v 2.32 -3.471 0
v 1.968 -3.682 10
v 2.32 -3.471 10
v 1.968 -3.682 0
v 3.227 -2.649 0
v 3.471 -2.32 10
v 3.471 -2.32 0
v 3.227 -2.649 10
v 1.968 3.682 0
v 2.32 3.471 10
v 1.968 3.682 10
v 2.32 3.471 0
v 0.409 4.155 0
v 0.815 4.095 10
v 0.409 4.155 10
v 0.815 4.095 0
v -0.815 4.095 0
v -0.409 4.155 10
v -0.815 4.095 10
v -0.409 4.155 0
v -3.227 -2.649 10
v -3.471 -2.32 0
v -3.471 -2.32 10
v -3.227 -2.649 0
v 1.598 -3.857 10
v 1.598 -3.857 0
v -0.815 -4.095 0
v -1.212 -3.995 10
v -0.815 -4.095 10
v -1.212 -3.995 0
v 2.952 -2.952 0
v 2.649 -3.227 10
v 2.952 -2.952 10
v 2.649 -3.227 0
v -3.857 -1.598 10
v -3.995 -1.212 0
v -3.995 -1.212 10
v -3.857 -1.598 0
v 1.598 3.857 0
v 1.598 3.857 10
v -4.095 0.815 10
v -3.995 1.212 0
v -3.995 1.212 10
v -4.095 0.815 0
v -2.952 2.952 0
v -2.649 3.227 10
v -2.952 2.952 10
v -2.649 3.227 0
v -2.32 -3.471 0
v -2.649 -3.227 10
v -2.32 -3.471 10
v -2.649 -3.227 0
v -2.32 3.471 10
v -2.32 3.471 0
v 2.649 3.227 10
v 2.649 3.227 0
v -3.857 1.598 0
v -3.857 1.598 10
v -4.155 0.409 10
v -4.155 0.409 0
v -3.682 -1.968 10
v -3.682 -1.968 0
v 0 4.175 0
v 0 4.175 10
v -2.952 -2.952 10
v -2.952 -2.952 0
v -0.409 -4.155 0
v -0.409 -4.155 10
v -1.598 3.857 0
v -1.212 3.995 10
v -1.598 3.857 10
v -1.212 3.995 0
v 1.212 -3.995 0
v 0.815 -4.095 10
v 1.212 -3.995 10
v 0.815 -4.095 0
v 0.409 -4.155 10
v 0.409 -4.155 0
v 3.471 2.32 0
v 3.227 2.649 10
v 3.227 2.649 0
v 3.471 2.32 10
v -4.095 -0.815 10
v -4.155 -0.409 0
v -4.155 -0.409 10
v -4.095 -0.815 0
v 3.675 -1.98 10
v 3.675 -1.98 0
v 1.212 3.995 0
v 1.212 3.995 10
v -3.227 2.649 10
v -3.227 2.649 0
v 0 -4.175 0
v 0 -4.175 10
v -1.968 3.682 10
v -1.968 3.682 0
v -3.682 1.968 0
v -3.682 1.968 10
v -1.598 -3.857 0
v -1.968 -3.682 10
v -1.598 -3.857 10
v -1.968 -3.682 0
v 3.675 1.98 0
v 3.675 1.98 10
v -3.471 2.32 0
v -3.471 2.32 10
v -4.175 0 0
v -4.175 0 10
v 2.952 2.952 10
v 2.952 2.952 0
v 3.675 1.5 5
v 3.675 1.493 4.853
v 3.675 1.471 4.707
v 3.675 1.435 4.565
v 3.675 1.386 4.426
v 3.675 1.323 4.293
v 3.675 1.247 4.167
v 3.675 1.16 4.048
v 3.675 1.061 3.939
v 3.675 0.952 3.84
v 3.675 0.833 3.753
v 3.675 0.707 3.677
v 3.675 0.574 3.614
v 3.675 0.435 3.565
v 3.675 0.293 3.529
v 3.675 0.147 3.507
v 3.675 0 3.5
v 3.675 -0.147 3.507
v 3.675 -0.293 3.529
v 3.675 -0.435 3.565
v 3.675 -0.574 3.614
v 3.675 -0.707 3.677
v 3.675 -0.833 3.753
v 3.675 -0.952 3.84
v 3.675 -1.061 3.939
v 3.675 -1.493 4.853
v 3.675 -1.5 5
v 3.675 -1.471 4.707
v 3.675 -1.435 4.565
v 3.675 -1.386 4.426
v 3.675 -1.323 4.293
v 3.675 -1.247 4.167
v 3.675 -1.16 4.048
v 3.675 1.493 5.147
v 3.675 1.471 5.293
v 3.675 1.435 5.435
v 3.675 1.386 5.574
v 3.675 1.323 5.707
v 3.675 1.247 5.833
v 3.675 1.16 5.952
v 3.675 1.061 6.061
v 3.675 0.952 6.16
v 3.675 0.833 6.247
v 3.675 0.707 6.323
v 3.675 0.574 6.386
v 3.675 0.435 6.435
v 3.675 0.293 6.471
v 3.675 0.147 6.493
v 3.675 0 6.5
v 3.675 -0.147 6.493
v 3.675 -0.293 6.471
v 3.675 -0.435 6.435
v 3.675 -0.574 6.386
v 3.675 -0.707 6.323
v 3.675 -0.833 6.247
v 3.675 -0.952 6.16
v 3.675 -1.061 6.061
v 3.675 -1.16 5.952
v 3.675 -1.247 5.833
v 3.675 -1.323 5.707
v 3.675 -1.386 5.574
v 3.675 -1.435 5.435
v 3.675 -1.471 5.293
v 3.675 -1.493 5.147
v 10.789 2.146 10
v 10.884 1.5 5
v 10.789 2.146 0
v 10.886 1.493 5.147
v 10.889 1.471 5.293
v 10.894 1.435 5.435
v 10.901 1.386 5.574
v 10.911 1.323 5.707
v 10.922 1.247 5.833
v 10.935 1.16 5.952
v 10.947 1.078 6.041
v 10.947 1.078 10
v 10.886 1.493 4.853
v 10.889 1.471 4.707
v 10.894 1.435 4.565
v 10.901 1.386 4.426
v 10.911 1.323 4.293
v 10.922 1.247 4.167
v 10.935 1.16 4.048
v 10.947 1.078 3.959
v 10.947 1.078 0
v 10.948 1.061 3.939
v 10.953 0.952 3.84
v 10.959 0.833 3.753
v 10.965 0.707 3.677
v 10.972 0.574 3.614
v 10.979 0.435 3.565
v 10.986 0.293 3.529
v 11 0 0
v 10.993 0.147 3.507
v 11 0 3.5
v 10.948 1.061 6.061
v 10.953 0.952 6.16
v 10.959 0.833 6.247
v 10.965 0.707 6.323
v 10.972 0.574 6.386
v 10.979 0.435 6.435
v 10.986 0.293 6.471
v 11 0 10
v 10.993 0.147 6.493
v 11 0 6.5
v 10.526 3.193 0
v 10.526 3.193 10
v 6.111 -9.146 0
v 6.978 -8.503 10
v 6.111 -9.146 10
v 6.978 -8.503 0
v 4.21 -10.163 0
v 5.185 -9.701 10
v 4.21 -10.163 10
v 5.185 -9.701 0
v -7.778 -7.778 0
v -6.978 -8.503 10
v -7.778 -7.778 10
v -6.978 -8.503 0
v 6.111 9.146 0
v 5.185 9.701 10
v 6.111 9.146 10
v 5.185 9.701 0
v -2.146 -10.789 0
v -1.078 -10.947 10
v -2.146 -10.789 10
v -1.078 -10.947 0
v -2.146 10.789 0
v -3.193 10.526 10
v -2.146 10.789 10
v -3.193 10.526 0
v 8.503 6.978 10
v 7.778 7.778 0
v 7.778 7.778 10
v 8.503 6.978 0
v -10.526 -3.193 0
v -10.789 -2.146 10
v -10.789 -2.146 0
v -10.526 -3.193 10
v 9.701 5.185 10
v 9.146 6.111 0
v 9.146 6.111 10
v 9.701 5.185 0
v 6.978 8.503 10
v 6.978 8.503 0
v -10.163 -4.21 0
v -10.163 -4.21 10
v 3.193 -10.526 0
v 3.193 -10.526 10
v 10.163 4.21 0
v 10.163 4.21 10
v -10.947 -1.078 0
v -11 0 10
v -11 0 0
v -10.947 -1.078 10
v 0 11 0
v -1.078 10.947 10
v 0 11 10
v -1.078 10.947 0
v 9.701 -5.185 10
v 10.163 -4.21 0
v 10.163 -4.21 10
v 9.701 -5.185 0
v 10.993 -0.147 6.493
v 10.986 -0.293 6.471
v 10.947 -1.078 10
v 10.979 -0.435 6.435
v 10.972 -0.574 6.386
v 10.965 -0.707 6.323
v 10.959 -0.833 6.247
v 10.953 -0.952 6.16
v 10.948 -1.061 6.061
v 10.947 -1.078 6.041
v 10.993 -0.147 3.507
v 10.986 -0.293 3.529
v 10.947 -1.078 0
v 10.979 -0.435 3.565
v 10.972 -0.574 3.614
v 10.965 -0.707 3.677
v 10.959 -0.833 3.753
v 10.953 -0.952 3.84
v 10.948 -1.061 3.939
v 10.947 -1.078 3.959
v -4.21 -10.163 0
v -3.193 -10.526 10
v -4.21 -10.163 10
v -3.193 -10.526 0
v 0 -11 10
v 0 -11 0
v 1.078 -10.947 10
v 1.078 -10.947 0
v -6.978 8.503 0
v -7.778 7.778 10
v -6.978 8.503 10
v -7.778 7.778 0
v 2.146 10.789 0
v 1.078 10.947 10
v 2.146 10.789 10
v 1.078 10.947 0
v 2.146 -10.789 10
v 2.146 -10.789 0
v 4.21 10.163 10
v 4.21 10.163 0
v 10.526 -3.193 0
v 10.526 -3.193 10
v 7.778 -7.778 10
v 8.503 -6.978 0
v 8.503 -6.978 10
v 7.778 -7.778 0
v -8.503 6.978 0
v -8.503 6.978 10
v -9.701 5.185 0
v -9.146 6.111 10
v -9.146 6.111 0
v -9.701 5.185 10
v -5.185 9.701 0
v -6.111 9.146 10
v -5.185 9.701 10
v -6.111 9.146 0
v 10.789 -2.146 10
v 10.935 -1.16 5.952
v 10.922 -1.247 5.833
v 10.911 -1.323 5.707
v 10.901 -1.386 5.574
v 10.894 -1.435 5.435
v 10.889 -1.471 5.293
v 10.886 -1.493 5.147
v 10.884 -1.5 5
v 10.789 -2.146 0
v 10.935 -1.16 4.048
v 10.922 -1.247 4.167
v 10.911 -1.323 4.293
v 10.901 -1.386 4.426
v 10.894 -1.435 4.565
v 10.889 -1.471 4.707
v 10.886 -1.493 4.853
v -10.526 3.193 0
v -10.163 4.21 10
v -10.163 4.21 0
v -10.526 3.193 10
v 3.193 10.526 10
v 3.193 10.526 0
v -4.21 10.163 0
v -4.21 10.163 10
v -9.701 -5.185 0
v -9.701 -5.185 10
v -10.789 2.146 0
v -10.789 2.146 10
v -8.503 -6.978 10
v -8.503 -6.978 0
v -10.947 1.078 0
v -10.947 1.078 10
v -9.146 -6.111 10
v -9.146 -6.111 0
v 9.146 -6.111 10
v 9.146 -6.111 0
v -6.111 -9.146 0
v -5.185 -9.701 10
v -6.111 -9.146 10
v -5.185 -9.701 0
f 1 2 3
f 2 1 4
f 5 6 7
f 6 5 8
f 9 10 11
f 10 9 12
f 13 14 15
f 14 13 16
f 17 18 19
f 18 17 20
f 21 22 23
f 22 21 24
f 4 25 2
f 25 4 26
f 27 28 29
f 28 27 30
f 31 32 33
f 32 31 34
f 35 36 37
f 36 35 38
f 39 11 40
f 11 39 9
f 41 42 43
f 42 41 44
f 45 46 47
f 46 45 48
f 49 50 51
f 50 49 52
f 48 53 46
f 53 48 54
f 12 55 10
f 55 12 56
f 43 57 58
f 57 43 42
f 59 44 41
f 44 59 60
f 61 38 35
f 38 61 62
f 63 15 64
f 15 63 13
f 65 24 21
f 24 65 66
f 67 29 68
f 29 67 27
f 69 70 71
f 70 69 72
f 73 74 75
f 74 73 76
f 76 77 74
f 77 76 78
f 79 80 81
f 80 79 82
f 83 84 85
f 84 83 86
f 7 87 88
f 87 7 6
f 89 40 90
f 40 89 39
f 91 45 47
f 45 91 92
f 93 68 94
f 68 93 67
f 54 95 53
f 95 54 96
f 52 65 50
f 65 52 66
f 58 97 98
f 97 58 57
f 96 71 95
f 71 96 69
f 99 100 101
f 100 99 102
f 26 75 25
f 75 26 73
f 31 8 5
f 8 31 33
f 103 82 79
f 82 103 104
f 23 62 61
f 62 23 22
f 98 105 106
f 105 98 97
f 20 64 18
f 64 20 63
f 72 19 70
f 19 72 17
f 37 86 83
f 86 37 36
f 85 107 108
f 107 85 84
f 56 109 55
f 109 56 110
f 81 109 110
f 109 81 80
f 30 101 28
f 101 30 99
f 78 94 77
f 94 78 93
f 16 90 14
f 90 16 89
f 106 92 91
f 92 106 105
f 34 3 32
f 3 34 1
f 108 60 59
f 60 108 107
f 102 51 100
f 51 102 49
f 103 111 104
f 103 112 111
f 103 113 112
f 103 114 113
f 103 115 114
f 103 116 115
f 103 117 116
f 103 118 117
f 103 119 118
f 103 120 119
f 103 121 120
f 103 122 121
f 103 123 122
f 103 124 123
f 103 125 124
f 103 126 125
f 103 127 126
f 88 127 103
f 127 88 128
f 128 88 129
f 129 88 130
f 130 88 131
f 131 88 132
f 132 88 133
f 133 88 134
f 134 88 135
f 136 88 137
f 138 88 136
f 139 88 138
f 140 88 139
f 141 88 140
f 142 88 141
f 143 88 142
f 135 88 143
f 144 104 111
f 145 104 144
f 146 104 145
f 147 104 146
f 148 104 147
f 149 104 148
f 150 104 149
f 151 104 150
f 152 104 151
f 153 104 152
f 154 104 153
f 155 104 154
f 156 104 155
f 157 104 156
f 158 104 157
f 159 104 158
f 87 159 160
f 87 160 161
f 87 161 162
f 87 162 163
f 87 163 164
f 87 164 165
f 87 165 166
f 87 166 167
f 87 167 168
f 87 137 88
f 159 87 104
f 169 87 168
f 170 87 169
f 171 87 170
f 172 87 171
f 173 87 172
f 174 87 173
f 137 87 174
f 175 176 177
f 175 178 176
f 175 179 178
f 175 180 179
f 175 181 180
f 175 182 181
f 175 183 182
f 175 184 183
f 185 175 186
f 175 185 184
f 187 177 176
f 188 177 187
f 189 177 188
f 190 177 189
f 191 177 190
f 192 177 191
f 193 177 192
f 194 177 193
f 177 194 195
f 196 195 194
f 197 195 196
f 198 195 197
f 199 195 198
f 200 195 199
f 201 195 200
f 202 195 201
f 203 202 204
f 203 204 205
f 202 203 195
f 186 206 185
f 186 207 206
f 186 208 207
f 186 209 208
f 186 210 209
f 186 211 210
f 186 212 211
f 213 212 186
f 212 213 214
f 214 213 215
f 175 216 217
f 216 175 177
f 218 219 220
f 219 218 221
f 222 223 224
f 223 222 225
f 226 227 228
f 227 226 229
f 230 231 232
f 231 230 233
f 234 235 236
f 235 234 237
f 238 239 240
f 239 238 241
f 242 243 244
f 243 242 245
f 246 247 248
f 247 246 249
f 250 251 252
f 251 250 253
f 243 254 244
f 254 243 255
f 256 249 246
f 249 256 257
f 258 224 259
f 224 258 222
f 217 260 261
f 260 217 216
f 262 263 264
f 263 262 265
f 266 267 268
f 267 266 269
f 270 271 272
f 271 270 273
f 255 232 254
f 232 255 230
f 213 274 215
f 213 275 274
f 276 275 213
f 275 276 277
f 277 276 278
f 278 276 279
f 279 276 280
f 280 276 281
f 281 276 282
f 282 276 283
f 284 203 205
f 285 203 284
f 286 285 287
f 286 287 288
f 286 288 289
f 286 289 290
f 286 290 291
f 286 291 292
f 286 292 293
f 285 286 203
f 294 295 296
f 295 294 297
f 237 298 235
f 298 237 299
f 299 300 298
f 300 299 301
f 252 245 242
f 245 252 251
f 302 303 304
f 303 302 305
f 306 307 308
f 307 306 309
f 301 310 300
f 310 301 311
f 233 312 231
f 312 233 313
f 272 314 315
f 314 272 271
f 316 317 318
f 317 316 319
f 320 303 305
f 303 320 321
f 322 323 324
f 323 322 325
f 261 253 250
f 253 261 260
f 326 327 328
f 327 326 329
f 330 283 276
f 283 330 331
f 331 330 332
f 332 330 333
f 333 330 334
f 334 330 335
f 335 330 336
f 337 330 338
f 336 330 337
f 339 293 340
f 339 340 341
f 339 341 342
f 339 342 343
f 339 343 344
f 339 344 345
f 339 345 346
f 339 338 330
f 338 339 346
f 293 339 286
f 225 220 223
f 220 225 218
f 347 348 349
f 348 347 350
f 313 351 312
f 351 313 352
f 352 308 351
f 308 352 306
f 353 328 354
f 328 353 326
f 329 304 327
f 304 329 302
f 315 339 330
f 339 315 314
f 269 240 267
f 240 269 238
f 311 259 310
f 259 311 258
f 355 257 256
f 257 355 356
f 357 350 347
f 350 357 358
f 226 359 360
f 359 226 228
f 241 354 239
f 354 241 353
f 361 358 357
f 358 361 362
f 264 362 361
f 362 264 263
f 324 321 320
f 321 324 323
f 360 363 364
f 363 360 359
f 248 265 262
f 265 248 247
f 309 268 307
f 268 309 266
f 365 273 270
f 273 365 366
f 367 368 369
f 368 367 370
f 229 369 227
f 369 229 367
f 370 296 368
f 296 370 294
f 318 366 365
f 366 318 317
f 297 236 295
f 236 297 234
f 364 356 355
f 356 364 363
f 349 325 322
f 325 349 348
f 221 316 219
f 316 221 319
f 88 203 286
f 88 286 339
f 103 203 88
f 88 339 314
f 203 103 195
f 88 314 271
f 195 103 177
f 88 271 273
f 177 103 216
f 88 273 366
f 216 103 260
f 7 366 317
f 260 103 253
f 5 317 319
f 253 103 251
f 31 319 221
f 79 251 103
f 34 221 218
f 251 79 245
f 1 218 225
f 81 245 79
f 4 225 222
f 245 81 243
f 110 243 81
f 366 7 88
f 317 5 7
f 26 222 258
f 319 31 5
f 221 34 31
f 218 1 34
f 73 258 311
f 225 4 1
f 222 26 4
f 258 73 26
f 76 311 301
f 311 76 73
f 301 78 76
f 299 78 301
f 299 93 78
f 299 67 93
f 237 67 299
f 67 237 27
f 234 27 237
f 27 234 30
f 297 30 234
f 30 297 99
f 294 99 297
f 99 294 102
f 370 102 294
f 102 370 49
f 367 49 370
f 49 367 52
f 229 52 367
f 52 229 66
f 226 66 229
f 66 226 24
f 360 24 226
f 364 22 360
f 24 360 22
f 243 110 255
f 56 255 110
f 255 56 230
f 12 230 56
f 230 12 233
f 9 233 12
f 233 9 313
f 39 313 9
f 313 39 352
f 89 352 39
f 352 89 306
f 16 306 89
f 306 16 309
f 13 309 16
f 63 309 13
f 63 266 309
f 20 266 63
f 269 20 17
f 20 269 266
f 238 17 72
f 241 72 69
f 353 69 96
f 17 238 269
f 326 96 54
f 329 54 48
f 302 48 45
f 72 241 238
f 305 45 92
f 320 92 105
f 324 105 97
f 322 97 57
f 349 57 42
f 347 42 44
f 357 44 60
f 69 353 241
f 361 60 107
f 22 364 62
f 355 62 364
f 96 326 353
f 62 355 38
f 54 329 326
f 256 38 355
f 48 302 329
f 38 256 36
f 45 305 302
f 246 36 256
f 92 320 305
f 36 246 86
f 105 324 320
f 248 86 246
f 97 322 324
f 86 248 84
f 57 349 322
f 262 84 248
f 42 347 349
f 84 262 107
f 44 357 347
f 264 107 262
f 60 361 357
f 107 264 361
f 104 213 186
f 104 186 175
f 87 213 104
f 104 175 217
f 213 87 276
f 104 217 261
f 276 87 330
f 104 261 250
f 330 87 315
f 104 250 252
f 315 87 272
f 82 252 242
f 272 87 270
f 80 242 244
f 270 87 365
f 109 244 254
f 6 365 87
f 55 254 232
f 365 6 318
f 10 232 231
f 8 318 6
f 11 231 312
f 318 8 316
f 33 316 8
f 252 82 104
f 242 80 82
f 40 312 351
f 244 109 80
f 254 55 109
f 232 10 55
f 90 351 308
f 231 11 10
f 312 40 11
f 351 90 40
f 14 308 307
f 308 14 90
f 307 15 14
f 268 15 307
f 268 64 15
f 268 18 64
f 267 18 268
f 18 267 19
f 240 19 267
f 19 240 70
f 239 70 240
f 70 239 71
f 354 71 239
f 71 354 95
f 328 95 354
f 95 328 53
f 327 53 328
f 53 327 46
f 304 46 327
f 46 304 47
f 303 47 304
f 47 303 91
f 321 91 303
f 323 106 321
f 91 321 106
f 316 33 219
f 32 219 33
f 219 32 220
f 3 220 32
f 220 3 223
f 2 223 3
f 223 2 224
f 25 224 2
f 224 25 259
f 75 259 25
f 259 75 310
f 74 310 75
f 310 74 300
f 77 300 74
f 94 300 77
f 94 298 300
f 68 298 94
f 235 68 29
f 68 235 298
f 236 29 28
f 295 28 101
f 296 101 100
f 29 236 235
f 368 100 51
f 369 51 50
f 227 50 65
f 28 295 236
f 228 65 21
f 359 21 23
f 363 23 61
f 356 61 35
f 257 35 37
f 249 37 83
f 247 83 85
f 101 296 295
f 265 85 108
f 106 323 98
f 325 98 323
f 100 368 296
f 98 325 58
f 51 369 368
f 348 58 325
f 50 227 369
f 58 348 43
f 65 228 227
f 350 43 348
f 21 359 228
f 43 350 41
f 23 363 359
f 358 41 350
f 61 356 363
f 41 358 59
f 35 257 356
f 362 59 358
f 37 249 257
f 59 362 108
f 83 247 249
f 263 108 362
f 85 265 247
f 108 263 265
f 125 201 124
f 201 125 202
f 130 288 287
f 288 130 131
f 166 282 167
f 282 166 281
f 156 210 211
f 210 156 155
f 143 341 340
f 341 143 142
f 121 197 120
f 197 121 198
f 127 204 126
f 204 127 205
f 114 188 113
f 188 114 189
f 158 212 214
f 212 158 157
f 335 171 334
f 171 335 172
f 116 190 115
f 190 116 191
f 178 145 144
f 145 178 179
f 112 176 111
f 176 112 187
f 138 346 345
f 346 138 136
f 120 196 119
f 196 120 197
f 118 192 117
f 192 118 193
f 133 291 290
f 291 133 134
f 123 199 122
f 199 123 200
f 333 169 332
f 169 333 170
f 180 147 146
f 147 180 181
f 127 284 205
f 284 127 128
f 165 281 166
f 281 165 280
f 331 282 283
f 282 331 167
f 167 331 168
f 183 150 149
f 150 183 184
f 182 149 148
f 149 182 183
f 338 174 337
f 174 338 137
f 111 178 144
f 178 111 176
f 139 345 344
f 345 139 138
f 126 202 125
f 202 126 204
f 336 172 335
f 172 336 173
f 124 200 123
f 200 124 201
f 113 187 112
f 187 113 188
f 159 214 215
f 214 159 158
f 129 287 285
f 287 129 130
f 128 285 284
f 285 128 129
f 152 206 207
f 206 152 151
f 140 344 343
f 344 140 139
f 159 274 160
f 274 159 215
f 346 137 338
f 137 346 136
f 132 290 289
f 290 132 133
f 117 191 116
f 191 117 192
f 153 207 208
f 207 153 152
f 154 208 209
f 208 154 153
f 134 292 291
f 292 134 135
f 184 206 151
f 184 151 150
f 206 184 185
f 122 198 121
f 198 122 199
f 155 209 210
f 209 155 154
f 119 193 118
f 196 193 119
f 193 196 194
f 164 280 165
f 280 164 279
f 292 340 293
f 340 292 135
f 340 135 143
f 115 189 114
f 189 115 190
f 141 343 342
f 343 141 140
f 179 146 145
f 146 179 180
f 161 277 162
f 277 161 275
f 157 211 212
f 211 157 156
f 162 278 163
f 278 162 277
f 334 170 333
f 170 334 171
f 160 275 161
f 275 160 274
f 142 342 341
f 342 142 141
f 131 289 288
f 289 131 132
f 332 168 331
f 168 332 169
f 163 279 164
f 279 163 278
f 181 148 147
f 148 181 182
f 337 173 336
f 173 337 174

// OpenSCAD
// file: parameters.scad
// =============================================================================
// Gen-BF — nightly 2026-10-04 (physics_scorer, honest magpylib watts)
// 8-pole / 6-coil dual rotor with big 51.5 deg sector coils and TALL 9.9 mm copper, magnets seated directly on 3 mm steel back-iron discs (through-pockets) so the field stays high across a wide gap.
// Clocking 0 deg (magnets N facing S) + D-flat keyed bore + index notch + flip-symmetric hole map.
// Windable 2-piece bobbin; turns = physics_scorer turns_fit; copper only between flanges.
// Steel back-iron: two 3.0 mm mild-steel discs (steel_backiron_disc.dxf); magnets sit ON the steel
// (through-pockets) -> score with --back-iron.
// =============================================================================
topology            = "dual_rotor";

// --- Wire / winding (physics_scorer winding-fit) -------------------------------
wire_awg            = 26;
wire_od             = 0.45;     // insulated OD mm (bare 0.405)
fill_realistic      = 0.60;     // insulated-wire area / window, hand-wound layered
turns               = 571;       // = physics_scorer turns_fit (do NOT raise)
coil_former_type    = "bobbin";
coil_core_inset     = 15.30;     // radial copper build: hub = copper boundary inset by this
wind_build_axial    = 0.0;      // nothing proud of the flanges
wind_build_radial   = 0.0;

// --- Bobbin (base + lid) ---------------------------------------------------------
coil_id_r           = 25.00;    // copper boundary sector
coil_od_r           = 62.00;
span_deg            = 51.51;    // = pitch - 2*asin((wall+0.85)/coil_id_r) -> >=1.2 mm stator web
former_web          = 9.90;     // copper height between flanges (TALL copper: steel keeps Bz up)
flange_t            = 0.80;     // >= 0.8 mm FDM wall rule (tall winds push on the flanges)
wall                = 1.00;     // flange lip beyond copper
former_bare_h       = former_web + 2 * flange_t;
coil_envelope_h     = former_bare_h + 2 * wind_build_axial;
tab_w               = 7.0;
tab_len             = 7.0;
tab_h               = former_bare_h / 2;
pin_d               = 1.9;      // 1.75 mm filament locating pin
coil_mount_r        = coil_od_r + 0.2 + 4.0;
lead_y              = 1.6;
lead_slot_w         = 0.9;
lead_groove_d       = 0.6;

// --- Gap -------------------------------------------------------------------------
run_clear           = 0.50;     // rotor face -> flange
gap_spacer_h        = run_clear + wind_build_axial;
m2m                 = coil_envelope_h + 2 * run_clear;   // rotor face to rotor face (= gap_sleeve length)

// --- Stator ----------------------------------------------------------------------
coil_stations       = 6;
bay_clear           = 0.25;
stator_thick        = former_bare_h;                        // bobbins flush both faces
stator_od           = 149.0;
shaft_clear_stator  = 14.0;     // stator is static; gap sleeve OD 12 spins inside

// --- Rotor(s) --------------------------------------------------------------------
magnet_Br           = 1.43;     // N52
magnet_d_large      = 20.0;
magnet_h_large      = 5.0;      // one O20x5 per pocket
magnet_h_small      = 5.0;      // one O5x5 per pocket
halbach_magnetisation = "diametric"; // O5x5 assist magnets MUST be DIAMETRICALLY magnetised (tangential)
rotor_b_same_axis   = true;     // same-index magnets share one axis: N faces S across the gap
large_pocket_d      = 20.3;
small_pocket_d      = 5.3;
pocket_h            = 5.10;     // THROUGH the carrier: magnet back face sits on the steel disc
large_n             = 8;
R_large             = 44.0;
R_small_inner       = 30.0;
R_small_mid         = 44.0;
R_small_outer       = 59.0;
small_r_list        = [R_small_inner, R_small_mid, R_small_outer];   // O5 pockets between poles
carrier_od          = 127.0;
carrier_thick       = pocket_h;
hub_h               = 10.0;
hub_od              = 24.0;     // slim hub so the M4 brace rods fit at R~18 inside the coil ring
hub_insert_d        = 4.0;      // M3 heat-set insert, radial, bears on the D-flat
rotor_b_offset_deg  = 0.0;      // CLOCKING: magnets directly opposite
shaft_key           = "dflat";
dflat_depth         = 0.5;      // 8 mm shaft with 0.5 mm flat (7.5 across flat)
index_notch_d       = 3.0;

// --- Steel back-iron (buyable laser-cut) -------------------------------------------
steel_t             = 3.0;      // mild steel thickness (not modelled by the image method; >=3 avoids saturation)
steel_center_hole   = 26.0;     // slips over the rotor hub (OD 24)

// --- Modular MAX interface ----------------------------------------------------------
shaft_bore          = 8.35;
dflat_x             = 4.0 - dflat_depth + (shaft_bore - 8.0) / 2;
bearing_d           = 21.85;
bearing_h           = 7.2;
m3_clear            = 3.5;
bolt_r_inner        = 27.0;     // M3 steel-disc clamp bolts (inside the magnet ring)
bolt_n_inner        = 4;
bolt_inner_angles   = [0, 90, 180, 270];
bolt_r_outer        = 57.0;     // M3 steel-disc clamp bolts (outside the magnet ring)
bolt_outer_angles   = [0, 90, 180, 270];
flange_bolt_r       = 69.5;     // frame rods: OUTSIDE the rotor OD (rotors spin inside them)
flange_bolt_n       = 6;
flange_bolt_offset  = 30.00;    // between coil stations -> never cuts a lead groove/tab
brace_r             = 18.0;
brace_d             = 4.3;      // temporary M4 jack rods (assembly only)
brace_n             = 4;
brace_angles        = [45, 135, 225, 315];          // flip-symmetric

spacer_pad_od       = 14.0;
spacer_pad_id       = m3_clear;
endbell_od          = 149.0;
endbell_thick       = 8.0;
endbell_shaft_clear = 10.0;
collar_h            = 10.0;
standoff_od         = 9.0;
frame_standoff_h    = run_clear + carrier_thick + hub_h + collar_h + 2.0;
sleeve_od           = 12.0;
plate_max_mm        = 410;

$fn = 64;
// main file
// Gen-BF — shaft collar with D-flat bore (set screw bears on the flat); print x4
include <parameters.scad>;
$fn = 64;
// D-flat keyed bore: flat faces +X (angle 0 = magnet pocket 0 = index notch)
module dflat_bore(h) {
    intersection() {
        cylinder(d=shaft_bore, h=h);
        translate([-shaft_bore, -shaft_bore, 0]) cube([shaft_bore + dflat_x, 2*shaft_bore, h]);
    }
}

od = 22; h = collar_h; set_d = 3.0;
difference() {
    cylinder(d=od, h=h);
    translate([0, 0, -0.1]) dflat_bore(h + 0.2);
    translate([0, 0, h/2]) rotate([0, 90, 0]) cylinder(d=set_d, h=od);
}
